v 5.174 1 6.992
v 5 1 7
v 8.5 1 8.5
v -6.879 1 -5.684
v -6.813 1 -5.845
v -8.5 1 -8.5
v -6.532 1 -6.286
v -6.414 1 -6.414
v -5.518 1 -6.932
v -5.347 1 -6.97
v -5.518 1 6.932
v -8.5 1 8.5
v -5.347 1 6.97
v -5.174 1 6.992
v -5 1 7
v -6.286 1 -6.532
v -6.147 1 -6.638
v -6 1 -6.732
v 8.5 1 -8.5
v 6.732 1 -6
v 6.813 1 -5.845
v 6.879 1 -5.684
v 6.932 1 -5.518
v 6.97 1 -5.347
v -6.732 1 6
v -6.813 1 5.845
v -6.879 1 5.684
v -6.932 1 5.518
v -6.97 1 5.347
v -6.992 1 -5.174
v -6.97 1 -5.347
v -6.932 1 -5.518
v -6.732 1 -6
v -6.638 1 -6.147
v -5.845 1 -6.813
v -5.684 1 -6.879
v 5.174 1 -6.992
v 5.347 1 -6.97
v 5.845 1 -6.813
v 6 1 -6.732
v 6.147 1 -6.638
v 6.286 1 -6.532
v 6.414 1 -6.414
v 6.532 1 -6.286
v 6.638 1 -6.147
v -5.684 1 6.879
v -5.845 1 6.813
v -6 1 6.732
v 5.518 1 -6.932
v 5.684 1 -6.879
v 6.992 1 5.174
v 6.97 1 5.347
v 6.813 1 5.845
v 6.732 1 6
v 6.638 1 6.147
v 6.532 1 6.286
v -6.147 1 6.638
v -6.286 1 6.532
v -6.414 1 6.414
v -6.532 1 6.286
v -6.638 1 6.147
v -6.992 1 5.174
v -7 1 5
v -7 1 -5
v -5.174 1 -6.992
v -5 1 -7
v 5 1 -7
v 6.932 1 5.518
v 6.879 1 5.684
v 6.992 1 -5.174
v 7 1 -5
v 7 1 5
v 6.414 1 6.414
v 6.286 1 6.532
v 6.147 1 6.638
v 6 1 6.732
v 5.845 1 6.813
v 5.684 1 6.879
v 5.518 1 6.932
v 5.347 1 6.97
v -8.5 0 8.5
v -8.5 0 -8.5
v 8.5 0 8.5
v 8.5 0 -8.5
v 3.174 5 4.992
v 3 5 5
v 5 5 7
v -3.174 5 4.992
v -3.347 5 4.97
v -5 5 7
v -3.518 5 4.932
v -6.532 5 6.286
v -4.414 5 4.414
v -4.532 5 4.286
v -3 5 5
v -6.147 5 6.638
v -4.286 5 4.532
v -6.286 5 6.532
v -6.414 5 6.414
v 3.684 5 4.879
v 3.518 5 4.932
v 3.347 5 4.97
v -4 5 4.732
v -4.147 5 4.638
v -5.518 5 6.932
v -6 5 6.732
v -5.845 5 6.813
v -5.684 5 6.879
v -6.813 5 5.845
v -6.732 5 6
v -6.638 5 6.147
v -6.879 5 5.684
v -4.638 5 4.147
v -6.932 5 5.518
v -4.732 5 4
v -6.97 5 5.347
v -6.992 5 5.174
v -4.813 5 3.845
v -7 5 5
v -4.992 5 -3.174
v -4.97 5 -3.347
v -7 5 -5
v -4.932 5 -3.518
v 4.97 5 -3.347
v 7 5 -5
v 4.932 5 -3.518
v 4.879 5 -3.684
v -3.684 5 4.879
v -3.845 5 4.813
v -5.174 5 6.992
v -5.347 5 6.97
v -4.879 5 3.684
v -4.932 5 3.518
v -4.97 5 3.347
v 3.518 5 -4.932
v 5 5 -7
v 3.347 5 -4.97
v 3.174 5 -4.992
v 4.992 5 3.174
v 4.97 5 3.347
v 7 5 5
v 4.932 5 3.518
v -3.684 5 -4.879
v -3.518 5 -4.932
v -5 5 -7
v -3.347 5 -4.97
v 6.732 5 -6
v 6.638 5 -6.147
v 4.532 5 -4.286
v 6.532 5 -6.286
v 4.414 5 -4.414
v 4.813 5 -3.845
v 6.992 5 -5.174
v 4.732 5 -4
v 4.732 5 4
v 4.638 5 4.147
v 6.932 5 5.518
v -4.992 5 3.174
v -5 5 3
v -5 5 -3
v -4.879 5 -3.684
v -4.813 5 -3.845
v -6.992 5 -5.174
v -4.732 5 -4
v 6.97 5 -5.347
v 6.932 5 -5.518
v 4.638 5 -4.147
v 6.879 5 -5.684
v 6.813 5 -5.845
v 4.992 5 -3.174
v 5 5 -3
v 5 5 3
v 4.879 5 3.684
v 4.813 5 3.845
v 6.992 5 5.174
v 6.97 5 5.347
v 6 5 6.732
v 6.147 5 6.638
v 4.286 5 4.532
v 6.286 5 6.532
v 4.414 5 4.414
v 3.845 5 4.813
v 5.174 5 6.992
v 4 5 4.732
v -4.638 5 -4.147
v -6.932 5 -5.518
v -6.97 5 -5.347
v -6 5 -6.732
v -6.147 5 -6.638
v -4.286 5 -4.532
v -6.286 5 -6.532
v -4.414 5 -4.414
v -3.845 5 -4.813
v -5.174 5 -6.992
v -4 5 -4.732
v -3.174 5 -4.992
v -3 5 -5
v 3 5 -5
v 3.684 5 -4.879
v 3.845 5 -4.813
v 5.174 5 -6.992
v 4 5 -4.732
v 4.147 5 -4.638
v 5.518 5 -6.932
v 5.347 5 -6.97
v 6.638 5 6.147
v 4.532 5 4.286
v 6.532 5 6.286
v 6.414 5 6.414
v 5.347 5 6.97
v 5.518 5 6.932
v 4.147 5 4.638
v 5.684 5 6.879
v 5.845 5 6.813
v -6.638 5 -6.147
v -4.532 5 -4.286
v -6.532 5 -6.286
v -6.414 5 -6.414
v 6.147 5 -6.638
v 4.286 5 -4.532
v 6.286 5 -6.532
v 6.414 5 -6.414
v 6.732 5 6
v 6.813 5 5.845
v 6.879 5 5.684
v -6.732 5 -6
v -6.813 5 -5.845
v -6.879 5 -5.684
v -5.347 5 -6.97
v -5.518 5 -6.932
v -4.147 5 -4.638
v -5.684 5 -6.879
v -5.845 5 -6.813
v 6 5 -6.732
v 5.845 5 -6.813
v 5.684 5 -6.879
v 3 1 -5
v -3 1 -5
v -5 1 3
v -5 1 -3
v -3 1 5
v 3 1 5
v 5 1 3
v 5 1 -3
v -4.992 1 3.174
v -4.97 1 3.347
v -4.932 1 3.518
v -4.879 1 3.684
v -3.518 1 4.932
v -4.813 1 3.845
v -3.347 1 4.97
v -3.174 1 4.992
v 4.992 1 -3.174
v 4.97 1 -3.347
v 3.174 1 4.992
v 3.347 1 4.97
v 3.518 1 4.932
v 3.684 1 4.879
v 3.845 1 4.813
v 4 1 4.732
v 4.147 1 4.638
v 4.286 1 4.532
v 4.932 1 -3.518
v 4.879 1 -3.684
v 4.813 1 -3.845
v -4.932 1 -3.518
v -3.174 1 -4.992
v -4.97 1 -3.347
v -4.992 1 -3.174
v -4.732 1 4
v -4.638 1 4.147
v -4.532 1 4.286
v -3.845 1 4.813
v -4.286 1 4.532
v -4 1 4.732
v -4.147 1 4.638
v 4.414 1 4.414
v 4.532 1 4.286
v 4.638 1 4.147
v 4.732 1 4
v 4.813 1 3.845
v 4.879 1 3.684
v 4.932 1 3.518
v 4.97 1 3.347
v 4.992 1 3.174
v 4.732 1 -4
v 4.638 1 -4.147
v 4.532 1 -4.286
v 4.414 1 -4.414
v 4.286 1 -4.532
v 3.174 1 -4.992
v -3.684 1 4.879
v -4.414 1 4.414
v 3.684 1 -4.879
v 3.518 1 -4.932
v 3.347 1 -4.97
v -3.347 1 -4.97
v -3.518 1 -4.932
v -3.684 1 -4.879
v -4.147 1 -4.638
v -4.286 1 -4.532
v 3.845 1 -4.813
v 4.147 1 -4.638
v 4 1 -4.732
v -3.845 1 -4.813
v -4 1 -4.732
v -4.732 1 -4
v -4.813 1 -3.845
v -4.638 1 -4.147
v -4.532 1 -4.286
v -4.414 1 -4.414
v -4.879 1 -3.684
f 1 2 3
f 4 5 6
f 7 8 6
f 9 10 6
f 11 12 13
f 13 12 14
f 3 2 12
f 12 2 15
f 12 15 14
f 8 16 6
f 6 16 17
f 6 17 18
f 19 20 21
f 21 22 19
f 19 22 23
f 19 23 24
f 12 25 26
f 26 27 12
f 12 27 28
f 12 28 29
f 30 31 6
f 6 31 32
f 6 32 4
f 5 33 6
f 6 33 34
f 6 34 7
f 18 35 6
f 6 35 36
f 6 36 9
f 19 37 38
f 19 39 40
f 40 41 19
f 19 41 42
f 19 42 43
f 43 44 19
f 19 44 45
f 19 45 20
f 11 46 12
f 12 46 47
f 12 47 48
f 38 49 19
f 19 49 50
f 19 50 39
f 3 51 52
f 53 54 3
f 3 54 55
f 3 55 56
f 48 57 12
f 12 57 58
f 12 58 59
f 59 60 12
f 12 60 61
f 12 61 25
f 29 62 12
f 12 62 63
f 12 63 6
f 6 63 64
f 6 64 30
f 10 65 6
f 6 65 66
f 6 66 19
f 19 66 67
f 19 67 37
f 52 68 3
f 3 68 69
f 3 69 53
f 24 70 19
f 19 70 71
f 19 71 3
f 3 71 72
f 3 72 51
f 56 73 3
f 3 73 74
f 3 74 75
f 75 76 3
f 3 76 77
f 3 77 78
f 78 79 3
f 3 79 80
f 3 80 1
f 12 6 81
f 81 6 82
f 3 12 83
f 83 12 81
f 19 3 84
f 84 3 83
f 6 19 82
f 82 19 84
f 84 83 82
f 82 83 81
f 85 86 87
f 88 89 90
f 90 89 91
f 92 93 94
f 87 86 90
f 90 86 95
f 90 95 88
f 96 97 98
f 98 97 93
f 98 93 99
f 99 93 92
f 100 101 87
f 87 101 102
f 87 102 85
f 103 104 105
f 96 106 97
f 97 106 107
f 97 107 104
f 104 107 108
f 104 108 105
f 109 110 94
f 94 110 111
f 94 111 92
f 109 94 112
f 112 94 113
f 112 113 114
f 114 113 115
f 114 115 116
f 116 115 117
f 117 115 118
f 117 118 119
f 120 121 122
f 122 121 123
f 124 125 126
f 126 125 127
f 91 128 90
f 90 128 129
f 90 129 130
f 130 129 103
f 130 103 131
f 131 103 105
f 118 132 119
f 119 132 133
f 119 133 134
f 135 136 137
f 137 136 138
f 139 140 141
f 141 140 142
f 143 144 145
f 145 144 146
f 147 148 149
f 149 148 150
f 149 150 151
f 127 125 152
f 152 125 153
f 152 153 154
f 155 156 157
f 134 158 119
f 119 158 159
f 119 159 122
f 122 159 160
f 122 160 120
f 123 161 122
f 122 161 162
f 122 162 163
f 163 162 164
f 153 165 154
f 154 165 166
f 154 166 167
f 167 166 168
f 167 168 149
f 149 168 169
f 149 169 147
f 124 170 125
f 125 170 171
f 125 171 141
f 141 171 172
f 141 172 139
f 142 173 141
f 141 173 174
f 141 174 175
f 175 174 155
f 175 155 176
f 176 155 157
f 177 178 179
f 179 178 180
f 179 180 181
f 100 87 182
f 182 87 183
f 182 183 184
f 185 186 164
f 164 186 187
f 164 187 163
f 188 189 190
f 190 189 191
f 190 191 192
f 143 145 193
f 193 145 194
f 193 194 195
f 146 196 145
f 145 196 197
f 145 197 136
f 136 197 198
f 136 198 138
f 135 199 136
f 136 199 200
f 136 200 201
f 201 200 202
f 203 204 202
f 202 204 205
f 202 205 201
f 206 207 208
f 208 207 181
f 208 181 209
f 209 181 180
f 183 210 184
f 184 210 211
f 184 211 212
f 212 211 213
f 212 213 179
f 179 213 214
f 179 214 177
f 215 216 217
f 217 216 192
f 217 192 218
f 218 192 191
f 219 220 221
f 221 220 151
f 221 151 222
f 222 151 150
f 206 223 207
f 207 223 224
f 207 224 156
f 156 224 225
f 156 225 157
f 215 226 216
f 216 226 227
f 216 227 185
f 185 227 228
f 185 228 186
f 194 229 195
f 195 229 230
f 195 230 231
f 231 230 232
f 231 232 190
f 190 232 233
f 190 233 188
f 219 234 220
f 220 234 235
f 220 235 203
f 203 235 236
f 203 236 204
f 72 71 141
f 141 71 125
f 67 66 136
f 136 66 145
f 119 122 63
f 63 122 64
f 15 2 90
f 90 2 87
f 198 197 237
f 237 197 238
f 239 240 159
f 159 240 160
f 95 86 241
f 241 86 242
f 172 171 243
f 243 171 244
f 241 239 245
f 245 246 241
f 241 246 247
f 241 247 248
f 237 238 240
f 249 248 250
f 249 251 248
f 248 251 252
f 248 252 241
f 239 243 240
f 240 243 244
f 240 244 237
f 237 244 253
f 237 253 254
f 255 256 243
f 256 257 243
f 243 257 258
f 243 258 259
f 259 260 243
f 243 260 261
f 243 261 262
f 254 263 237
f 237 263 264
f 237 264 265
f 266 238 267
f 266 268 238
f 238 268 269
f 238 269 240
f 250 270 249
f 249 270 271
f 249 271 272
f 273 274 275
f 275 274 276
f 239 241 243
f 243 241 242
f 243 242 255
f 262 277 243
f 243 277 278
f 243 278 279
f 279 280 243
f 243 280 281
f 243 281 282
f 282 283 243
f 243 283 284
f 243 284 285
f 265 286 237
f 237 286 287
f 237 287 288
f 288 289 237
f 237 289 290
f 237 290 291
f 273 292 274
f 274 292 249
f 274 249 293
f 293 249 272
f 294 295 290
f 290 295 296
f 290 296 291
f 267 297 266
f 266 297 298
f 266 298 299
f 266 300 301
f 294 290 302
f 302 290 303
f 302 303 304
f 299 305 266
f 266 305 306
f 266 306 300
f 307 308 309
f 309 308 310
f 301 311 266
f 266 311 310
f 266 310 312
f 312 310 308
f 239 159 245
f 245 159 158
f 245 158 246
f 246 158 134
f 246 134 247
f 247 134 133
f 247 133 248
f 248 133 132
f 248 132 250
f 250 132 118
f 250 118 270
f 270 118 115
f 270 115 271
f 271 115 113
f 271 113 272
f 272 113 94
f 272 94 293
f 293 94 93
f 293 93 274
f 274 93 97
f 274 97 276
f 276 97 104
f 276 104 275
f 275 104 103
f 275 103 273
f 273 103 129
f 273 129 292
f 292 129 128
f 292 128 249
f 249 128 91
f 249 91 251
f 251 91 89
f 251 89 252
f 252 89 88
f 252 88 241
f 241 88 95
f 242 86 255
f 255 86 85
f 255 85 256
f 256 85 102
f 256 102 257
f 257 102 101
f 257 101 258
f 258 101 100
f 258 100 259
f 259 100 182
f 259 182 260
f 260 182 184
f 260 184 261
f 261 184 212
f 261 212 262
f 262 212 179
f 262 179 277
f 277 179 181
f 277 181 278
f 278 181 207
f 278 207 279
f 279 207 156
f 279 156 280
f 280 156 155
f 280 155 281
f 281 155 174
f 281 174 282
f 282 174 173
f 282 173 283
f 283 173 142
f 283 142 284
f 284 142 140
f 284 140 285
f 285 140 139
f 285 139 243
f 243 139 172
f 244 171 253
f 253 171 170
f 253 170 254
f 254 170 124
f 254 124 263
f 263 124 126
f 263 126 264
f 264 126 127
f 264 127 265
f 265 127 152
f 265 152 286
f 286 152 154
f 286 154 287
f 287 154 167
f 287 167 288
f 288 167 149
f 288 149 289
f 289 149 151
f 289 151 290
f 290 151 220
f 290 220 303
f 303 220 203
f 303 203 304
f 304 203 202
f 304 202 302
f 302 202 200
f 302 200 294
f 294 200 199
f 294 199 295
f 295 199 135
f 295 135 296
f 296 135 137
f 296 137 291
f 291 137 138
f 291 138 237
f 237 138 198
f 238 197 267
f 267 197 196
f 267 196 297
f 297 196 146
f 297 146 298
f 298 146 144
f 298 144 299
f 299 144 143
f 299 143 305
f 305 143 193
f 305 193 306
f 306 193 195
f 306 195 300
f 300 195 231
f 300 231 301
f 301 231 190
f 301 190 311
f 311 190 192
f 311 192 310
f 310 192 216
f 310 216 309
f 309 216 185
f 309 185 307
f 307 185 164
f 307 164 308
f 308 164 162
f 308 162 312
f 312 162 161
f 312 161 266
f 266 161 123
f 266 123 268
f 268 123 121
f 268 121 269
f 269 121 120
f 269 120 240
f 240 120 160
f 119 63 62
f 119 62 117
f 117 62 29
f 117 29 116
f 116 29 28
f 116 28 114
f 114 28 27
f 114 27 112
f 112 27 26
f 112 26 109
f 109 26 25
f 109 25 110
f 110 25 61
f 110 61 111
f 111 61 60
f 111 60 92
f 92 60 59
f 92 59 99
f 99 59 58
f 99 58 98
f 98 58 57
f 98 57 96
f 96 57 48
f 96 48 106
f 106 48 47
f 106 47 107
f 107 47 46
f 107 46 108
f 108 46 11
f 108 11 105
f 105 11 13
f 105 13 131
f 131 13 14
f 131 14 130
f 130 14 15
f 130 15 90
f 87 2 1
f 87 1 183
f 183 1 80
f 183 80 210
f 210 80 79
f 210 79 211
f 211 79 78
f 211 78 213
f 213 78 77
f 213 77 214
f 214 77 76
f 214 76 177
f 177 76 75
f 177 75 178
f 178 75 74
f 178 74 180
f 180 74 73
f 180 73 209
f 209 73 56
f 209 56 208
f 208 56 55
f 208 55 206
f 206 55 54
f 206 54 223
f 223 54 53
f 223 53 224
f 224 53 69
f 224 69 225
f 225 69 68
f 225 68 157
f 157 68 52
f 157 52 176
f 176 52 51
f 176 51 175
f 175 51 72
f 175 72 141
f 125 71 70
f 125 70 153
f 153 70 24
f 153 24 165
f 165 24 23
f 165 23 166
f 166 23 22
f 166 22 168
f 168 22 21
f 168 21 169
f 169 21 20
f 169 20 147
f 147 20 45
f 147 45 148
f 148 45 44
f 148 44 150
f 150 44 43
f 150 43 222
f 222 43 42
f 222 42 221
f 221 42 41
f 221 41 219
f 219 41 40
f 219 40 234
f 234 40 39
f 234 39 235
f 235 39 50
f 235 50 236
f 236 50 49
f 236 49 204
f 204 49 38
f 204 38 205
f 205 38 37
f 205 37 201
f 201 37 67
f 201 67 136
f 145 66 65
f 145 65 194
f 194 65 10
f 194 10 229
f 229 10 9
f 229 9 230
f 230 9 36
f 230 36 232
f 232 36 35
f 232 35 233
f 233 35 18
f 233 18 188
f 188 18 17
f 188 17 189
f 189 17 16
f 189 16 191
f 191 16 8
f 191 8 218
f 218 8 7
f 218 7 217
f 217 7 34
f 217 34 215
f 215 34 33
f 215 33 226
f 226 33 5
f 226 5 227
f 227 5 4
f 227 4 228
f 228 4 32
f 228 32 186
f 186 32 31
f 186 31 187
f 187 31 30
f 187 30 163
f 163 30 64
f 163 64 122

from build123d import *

# Parameters (mm, degrees)
SKETCH1_W           = 17
SKETCH1_H           = 17
BOSS_EXTRUDE1_DEPTH = 1
SKETCH2_W           = 14
SKETCH2_H           = 14
SKETCH2_W_2         = 10
SKETCH2_H_2         = 10
BOSS_EXTRUDE2_DEPTH = 4
FILLET1_R           = 2


with BuildPart() as part:
    # Sketch1 → Boss-Extrude1 (new body)
    with BuildSketch(Plane(origin=(0, 0, 0), x_dir=(1, 0, 0), z_dir=(0, 1, 0))):
        Rectangle(SKETCH1_W, SKETCH1_H)
    extrude(amount=BOSS_EXTRUDE1_DEPTH)

    # Sketch2 → Boss-Extrude2 (add)
    with BuildSketch(Plane(origin=(0, 1, 0), x_dir=(1, 0, 0), z_dir=(0, 1, 0))):
        Rectangle(SKETCH2_W, SKETCH2_H)
        Rectangle(SKETCH2_W_2, SKETCH2_H_2, mode=Mode.SUBTRACT)
    extrude(amount=BOSS_EXTRUDE2_DEPTH)

    # Fillet1
    fillet1_edges = [part.edges().sort_by_distance(p)[0] for p in [
        (7, 3, 7),
        (7, 3, -7),
        (-7, 3, -7),
        (-7, 3, 7),
        (-5, 3, -5),
        (-5, 3, 5),
        (5, 3, 5),
        (5, 3, -5),
    ]]
    fillet(fillet1_edges, radius=FILLET1_R)


solid = part.part
